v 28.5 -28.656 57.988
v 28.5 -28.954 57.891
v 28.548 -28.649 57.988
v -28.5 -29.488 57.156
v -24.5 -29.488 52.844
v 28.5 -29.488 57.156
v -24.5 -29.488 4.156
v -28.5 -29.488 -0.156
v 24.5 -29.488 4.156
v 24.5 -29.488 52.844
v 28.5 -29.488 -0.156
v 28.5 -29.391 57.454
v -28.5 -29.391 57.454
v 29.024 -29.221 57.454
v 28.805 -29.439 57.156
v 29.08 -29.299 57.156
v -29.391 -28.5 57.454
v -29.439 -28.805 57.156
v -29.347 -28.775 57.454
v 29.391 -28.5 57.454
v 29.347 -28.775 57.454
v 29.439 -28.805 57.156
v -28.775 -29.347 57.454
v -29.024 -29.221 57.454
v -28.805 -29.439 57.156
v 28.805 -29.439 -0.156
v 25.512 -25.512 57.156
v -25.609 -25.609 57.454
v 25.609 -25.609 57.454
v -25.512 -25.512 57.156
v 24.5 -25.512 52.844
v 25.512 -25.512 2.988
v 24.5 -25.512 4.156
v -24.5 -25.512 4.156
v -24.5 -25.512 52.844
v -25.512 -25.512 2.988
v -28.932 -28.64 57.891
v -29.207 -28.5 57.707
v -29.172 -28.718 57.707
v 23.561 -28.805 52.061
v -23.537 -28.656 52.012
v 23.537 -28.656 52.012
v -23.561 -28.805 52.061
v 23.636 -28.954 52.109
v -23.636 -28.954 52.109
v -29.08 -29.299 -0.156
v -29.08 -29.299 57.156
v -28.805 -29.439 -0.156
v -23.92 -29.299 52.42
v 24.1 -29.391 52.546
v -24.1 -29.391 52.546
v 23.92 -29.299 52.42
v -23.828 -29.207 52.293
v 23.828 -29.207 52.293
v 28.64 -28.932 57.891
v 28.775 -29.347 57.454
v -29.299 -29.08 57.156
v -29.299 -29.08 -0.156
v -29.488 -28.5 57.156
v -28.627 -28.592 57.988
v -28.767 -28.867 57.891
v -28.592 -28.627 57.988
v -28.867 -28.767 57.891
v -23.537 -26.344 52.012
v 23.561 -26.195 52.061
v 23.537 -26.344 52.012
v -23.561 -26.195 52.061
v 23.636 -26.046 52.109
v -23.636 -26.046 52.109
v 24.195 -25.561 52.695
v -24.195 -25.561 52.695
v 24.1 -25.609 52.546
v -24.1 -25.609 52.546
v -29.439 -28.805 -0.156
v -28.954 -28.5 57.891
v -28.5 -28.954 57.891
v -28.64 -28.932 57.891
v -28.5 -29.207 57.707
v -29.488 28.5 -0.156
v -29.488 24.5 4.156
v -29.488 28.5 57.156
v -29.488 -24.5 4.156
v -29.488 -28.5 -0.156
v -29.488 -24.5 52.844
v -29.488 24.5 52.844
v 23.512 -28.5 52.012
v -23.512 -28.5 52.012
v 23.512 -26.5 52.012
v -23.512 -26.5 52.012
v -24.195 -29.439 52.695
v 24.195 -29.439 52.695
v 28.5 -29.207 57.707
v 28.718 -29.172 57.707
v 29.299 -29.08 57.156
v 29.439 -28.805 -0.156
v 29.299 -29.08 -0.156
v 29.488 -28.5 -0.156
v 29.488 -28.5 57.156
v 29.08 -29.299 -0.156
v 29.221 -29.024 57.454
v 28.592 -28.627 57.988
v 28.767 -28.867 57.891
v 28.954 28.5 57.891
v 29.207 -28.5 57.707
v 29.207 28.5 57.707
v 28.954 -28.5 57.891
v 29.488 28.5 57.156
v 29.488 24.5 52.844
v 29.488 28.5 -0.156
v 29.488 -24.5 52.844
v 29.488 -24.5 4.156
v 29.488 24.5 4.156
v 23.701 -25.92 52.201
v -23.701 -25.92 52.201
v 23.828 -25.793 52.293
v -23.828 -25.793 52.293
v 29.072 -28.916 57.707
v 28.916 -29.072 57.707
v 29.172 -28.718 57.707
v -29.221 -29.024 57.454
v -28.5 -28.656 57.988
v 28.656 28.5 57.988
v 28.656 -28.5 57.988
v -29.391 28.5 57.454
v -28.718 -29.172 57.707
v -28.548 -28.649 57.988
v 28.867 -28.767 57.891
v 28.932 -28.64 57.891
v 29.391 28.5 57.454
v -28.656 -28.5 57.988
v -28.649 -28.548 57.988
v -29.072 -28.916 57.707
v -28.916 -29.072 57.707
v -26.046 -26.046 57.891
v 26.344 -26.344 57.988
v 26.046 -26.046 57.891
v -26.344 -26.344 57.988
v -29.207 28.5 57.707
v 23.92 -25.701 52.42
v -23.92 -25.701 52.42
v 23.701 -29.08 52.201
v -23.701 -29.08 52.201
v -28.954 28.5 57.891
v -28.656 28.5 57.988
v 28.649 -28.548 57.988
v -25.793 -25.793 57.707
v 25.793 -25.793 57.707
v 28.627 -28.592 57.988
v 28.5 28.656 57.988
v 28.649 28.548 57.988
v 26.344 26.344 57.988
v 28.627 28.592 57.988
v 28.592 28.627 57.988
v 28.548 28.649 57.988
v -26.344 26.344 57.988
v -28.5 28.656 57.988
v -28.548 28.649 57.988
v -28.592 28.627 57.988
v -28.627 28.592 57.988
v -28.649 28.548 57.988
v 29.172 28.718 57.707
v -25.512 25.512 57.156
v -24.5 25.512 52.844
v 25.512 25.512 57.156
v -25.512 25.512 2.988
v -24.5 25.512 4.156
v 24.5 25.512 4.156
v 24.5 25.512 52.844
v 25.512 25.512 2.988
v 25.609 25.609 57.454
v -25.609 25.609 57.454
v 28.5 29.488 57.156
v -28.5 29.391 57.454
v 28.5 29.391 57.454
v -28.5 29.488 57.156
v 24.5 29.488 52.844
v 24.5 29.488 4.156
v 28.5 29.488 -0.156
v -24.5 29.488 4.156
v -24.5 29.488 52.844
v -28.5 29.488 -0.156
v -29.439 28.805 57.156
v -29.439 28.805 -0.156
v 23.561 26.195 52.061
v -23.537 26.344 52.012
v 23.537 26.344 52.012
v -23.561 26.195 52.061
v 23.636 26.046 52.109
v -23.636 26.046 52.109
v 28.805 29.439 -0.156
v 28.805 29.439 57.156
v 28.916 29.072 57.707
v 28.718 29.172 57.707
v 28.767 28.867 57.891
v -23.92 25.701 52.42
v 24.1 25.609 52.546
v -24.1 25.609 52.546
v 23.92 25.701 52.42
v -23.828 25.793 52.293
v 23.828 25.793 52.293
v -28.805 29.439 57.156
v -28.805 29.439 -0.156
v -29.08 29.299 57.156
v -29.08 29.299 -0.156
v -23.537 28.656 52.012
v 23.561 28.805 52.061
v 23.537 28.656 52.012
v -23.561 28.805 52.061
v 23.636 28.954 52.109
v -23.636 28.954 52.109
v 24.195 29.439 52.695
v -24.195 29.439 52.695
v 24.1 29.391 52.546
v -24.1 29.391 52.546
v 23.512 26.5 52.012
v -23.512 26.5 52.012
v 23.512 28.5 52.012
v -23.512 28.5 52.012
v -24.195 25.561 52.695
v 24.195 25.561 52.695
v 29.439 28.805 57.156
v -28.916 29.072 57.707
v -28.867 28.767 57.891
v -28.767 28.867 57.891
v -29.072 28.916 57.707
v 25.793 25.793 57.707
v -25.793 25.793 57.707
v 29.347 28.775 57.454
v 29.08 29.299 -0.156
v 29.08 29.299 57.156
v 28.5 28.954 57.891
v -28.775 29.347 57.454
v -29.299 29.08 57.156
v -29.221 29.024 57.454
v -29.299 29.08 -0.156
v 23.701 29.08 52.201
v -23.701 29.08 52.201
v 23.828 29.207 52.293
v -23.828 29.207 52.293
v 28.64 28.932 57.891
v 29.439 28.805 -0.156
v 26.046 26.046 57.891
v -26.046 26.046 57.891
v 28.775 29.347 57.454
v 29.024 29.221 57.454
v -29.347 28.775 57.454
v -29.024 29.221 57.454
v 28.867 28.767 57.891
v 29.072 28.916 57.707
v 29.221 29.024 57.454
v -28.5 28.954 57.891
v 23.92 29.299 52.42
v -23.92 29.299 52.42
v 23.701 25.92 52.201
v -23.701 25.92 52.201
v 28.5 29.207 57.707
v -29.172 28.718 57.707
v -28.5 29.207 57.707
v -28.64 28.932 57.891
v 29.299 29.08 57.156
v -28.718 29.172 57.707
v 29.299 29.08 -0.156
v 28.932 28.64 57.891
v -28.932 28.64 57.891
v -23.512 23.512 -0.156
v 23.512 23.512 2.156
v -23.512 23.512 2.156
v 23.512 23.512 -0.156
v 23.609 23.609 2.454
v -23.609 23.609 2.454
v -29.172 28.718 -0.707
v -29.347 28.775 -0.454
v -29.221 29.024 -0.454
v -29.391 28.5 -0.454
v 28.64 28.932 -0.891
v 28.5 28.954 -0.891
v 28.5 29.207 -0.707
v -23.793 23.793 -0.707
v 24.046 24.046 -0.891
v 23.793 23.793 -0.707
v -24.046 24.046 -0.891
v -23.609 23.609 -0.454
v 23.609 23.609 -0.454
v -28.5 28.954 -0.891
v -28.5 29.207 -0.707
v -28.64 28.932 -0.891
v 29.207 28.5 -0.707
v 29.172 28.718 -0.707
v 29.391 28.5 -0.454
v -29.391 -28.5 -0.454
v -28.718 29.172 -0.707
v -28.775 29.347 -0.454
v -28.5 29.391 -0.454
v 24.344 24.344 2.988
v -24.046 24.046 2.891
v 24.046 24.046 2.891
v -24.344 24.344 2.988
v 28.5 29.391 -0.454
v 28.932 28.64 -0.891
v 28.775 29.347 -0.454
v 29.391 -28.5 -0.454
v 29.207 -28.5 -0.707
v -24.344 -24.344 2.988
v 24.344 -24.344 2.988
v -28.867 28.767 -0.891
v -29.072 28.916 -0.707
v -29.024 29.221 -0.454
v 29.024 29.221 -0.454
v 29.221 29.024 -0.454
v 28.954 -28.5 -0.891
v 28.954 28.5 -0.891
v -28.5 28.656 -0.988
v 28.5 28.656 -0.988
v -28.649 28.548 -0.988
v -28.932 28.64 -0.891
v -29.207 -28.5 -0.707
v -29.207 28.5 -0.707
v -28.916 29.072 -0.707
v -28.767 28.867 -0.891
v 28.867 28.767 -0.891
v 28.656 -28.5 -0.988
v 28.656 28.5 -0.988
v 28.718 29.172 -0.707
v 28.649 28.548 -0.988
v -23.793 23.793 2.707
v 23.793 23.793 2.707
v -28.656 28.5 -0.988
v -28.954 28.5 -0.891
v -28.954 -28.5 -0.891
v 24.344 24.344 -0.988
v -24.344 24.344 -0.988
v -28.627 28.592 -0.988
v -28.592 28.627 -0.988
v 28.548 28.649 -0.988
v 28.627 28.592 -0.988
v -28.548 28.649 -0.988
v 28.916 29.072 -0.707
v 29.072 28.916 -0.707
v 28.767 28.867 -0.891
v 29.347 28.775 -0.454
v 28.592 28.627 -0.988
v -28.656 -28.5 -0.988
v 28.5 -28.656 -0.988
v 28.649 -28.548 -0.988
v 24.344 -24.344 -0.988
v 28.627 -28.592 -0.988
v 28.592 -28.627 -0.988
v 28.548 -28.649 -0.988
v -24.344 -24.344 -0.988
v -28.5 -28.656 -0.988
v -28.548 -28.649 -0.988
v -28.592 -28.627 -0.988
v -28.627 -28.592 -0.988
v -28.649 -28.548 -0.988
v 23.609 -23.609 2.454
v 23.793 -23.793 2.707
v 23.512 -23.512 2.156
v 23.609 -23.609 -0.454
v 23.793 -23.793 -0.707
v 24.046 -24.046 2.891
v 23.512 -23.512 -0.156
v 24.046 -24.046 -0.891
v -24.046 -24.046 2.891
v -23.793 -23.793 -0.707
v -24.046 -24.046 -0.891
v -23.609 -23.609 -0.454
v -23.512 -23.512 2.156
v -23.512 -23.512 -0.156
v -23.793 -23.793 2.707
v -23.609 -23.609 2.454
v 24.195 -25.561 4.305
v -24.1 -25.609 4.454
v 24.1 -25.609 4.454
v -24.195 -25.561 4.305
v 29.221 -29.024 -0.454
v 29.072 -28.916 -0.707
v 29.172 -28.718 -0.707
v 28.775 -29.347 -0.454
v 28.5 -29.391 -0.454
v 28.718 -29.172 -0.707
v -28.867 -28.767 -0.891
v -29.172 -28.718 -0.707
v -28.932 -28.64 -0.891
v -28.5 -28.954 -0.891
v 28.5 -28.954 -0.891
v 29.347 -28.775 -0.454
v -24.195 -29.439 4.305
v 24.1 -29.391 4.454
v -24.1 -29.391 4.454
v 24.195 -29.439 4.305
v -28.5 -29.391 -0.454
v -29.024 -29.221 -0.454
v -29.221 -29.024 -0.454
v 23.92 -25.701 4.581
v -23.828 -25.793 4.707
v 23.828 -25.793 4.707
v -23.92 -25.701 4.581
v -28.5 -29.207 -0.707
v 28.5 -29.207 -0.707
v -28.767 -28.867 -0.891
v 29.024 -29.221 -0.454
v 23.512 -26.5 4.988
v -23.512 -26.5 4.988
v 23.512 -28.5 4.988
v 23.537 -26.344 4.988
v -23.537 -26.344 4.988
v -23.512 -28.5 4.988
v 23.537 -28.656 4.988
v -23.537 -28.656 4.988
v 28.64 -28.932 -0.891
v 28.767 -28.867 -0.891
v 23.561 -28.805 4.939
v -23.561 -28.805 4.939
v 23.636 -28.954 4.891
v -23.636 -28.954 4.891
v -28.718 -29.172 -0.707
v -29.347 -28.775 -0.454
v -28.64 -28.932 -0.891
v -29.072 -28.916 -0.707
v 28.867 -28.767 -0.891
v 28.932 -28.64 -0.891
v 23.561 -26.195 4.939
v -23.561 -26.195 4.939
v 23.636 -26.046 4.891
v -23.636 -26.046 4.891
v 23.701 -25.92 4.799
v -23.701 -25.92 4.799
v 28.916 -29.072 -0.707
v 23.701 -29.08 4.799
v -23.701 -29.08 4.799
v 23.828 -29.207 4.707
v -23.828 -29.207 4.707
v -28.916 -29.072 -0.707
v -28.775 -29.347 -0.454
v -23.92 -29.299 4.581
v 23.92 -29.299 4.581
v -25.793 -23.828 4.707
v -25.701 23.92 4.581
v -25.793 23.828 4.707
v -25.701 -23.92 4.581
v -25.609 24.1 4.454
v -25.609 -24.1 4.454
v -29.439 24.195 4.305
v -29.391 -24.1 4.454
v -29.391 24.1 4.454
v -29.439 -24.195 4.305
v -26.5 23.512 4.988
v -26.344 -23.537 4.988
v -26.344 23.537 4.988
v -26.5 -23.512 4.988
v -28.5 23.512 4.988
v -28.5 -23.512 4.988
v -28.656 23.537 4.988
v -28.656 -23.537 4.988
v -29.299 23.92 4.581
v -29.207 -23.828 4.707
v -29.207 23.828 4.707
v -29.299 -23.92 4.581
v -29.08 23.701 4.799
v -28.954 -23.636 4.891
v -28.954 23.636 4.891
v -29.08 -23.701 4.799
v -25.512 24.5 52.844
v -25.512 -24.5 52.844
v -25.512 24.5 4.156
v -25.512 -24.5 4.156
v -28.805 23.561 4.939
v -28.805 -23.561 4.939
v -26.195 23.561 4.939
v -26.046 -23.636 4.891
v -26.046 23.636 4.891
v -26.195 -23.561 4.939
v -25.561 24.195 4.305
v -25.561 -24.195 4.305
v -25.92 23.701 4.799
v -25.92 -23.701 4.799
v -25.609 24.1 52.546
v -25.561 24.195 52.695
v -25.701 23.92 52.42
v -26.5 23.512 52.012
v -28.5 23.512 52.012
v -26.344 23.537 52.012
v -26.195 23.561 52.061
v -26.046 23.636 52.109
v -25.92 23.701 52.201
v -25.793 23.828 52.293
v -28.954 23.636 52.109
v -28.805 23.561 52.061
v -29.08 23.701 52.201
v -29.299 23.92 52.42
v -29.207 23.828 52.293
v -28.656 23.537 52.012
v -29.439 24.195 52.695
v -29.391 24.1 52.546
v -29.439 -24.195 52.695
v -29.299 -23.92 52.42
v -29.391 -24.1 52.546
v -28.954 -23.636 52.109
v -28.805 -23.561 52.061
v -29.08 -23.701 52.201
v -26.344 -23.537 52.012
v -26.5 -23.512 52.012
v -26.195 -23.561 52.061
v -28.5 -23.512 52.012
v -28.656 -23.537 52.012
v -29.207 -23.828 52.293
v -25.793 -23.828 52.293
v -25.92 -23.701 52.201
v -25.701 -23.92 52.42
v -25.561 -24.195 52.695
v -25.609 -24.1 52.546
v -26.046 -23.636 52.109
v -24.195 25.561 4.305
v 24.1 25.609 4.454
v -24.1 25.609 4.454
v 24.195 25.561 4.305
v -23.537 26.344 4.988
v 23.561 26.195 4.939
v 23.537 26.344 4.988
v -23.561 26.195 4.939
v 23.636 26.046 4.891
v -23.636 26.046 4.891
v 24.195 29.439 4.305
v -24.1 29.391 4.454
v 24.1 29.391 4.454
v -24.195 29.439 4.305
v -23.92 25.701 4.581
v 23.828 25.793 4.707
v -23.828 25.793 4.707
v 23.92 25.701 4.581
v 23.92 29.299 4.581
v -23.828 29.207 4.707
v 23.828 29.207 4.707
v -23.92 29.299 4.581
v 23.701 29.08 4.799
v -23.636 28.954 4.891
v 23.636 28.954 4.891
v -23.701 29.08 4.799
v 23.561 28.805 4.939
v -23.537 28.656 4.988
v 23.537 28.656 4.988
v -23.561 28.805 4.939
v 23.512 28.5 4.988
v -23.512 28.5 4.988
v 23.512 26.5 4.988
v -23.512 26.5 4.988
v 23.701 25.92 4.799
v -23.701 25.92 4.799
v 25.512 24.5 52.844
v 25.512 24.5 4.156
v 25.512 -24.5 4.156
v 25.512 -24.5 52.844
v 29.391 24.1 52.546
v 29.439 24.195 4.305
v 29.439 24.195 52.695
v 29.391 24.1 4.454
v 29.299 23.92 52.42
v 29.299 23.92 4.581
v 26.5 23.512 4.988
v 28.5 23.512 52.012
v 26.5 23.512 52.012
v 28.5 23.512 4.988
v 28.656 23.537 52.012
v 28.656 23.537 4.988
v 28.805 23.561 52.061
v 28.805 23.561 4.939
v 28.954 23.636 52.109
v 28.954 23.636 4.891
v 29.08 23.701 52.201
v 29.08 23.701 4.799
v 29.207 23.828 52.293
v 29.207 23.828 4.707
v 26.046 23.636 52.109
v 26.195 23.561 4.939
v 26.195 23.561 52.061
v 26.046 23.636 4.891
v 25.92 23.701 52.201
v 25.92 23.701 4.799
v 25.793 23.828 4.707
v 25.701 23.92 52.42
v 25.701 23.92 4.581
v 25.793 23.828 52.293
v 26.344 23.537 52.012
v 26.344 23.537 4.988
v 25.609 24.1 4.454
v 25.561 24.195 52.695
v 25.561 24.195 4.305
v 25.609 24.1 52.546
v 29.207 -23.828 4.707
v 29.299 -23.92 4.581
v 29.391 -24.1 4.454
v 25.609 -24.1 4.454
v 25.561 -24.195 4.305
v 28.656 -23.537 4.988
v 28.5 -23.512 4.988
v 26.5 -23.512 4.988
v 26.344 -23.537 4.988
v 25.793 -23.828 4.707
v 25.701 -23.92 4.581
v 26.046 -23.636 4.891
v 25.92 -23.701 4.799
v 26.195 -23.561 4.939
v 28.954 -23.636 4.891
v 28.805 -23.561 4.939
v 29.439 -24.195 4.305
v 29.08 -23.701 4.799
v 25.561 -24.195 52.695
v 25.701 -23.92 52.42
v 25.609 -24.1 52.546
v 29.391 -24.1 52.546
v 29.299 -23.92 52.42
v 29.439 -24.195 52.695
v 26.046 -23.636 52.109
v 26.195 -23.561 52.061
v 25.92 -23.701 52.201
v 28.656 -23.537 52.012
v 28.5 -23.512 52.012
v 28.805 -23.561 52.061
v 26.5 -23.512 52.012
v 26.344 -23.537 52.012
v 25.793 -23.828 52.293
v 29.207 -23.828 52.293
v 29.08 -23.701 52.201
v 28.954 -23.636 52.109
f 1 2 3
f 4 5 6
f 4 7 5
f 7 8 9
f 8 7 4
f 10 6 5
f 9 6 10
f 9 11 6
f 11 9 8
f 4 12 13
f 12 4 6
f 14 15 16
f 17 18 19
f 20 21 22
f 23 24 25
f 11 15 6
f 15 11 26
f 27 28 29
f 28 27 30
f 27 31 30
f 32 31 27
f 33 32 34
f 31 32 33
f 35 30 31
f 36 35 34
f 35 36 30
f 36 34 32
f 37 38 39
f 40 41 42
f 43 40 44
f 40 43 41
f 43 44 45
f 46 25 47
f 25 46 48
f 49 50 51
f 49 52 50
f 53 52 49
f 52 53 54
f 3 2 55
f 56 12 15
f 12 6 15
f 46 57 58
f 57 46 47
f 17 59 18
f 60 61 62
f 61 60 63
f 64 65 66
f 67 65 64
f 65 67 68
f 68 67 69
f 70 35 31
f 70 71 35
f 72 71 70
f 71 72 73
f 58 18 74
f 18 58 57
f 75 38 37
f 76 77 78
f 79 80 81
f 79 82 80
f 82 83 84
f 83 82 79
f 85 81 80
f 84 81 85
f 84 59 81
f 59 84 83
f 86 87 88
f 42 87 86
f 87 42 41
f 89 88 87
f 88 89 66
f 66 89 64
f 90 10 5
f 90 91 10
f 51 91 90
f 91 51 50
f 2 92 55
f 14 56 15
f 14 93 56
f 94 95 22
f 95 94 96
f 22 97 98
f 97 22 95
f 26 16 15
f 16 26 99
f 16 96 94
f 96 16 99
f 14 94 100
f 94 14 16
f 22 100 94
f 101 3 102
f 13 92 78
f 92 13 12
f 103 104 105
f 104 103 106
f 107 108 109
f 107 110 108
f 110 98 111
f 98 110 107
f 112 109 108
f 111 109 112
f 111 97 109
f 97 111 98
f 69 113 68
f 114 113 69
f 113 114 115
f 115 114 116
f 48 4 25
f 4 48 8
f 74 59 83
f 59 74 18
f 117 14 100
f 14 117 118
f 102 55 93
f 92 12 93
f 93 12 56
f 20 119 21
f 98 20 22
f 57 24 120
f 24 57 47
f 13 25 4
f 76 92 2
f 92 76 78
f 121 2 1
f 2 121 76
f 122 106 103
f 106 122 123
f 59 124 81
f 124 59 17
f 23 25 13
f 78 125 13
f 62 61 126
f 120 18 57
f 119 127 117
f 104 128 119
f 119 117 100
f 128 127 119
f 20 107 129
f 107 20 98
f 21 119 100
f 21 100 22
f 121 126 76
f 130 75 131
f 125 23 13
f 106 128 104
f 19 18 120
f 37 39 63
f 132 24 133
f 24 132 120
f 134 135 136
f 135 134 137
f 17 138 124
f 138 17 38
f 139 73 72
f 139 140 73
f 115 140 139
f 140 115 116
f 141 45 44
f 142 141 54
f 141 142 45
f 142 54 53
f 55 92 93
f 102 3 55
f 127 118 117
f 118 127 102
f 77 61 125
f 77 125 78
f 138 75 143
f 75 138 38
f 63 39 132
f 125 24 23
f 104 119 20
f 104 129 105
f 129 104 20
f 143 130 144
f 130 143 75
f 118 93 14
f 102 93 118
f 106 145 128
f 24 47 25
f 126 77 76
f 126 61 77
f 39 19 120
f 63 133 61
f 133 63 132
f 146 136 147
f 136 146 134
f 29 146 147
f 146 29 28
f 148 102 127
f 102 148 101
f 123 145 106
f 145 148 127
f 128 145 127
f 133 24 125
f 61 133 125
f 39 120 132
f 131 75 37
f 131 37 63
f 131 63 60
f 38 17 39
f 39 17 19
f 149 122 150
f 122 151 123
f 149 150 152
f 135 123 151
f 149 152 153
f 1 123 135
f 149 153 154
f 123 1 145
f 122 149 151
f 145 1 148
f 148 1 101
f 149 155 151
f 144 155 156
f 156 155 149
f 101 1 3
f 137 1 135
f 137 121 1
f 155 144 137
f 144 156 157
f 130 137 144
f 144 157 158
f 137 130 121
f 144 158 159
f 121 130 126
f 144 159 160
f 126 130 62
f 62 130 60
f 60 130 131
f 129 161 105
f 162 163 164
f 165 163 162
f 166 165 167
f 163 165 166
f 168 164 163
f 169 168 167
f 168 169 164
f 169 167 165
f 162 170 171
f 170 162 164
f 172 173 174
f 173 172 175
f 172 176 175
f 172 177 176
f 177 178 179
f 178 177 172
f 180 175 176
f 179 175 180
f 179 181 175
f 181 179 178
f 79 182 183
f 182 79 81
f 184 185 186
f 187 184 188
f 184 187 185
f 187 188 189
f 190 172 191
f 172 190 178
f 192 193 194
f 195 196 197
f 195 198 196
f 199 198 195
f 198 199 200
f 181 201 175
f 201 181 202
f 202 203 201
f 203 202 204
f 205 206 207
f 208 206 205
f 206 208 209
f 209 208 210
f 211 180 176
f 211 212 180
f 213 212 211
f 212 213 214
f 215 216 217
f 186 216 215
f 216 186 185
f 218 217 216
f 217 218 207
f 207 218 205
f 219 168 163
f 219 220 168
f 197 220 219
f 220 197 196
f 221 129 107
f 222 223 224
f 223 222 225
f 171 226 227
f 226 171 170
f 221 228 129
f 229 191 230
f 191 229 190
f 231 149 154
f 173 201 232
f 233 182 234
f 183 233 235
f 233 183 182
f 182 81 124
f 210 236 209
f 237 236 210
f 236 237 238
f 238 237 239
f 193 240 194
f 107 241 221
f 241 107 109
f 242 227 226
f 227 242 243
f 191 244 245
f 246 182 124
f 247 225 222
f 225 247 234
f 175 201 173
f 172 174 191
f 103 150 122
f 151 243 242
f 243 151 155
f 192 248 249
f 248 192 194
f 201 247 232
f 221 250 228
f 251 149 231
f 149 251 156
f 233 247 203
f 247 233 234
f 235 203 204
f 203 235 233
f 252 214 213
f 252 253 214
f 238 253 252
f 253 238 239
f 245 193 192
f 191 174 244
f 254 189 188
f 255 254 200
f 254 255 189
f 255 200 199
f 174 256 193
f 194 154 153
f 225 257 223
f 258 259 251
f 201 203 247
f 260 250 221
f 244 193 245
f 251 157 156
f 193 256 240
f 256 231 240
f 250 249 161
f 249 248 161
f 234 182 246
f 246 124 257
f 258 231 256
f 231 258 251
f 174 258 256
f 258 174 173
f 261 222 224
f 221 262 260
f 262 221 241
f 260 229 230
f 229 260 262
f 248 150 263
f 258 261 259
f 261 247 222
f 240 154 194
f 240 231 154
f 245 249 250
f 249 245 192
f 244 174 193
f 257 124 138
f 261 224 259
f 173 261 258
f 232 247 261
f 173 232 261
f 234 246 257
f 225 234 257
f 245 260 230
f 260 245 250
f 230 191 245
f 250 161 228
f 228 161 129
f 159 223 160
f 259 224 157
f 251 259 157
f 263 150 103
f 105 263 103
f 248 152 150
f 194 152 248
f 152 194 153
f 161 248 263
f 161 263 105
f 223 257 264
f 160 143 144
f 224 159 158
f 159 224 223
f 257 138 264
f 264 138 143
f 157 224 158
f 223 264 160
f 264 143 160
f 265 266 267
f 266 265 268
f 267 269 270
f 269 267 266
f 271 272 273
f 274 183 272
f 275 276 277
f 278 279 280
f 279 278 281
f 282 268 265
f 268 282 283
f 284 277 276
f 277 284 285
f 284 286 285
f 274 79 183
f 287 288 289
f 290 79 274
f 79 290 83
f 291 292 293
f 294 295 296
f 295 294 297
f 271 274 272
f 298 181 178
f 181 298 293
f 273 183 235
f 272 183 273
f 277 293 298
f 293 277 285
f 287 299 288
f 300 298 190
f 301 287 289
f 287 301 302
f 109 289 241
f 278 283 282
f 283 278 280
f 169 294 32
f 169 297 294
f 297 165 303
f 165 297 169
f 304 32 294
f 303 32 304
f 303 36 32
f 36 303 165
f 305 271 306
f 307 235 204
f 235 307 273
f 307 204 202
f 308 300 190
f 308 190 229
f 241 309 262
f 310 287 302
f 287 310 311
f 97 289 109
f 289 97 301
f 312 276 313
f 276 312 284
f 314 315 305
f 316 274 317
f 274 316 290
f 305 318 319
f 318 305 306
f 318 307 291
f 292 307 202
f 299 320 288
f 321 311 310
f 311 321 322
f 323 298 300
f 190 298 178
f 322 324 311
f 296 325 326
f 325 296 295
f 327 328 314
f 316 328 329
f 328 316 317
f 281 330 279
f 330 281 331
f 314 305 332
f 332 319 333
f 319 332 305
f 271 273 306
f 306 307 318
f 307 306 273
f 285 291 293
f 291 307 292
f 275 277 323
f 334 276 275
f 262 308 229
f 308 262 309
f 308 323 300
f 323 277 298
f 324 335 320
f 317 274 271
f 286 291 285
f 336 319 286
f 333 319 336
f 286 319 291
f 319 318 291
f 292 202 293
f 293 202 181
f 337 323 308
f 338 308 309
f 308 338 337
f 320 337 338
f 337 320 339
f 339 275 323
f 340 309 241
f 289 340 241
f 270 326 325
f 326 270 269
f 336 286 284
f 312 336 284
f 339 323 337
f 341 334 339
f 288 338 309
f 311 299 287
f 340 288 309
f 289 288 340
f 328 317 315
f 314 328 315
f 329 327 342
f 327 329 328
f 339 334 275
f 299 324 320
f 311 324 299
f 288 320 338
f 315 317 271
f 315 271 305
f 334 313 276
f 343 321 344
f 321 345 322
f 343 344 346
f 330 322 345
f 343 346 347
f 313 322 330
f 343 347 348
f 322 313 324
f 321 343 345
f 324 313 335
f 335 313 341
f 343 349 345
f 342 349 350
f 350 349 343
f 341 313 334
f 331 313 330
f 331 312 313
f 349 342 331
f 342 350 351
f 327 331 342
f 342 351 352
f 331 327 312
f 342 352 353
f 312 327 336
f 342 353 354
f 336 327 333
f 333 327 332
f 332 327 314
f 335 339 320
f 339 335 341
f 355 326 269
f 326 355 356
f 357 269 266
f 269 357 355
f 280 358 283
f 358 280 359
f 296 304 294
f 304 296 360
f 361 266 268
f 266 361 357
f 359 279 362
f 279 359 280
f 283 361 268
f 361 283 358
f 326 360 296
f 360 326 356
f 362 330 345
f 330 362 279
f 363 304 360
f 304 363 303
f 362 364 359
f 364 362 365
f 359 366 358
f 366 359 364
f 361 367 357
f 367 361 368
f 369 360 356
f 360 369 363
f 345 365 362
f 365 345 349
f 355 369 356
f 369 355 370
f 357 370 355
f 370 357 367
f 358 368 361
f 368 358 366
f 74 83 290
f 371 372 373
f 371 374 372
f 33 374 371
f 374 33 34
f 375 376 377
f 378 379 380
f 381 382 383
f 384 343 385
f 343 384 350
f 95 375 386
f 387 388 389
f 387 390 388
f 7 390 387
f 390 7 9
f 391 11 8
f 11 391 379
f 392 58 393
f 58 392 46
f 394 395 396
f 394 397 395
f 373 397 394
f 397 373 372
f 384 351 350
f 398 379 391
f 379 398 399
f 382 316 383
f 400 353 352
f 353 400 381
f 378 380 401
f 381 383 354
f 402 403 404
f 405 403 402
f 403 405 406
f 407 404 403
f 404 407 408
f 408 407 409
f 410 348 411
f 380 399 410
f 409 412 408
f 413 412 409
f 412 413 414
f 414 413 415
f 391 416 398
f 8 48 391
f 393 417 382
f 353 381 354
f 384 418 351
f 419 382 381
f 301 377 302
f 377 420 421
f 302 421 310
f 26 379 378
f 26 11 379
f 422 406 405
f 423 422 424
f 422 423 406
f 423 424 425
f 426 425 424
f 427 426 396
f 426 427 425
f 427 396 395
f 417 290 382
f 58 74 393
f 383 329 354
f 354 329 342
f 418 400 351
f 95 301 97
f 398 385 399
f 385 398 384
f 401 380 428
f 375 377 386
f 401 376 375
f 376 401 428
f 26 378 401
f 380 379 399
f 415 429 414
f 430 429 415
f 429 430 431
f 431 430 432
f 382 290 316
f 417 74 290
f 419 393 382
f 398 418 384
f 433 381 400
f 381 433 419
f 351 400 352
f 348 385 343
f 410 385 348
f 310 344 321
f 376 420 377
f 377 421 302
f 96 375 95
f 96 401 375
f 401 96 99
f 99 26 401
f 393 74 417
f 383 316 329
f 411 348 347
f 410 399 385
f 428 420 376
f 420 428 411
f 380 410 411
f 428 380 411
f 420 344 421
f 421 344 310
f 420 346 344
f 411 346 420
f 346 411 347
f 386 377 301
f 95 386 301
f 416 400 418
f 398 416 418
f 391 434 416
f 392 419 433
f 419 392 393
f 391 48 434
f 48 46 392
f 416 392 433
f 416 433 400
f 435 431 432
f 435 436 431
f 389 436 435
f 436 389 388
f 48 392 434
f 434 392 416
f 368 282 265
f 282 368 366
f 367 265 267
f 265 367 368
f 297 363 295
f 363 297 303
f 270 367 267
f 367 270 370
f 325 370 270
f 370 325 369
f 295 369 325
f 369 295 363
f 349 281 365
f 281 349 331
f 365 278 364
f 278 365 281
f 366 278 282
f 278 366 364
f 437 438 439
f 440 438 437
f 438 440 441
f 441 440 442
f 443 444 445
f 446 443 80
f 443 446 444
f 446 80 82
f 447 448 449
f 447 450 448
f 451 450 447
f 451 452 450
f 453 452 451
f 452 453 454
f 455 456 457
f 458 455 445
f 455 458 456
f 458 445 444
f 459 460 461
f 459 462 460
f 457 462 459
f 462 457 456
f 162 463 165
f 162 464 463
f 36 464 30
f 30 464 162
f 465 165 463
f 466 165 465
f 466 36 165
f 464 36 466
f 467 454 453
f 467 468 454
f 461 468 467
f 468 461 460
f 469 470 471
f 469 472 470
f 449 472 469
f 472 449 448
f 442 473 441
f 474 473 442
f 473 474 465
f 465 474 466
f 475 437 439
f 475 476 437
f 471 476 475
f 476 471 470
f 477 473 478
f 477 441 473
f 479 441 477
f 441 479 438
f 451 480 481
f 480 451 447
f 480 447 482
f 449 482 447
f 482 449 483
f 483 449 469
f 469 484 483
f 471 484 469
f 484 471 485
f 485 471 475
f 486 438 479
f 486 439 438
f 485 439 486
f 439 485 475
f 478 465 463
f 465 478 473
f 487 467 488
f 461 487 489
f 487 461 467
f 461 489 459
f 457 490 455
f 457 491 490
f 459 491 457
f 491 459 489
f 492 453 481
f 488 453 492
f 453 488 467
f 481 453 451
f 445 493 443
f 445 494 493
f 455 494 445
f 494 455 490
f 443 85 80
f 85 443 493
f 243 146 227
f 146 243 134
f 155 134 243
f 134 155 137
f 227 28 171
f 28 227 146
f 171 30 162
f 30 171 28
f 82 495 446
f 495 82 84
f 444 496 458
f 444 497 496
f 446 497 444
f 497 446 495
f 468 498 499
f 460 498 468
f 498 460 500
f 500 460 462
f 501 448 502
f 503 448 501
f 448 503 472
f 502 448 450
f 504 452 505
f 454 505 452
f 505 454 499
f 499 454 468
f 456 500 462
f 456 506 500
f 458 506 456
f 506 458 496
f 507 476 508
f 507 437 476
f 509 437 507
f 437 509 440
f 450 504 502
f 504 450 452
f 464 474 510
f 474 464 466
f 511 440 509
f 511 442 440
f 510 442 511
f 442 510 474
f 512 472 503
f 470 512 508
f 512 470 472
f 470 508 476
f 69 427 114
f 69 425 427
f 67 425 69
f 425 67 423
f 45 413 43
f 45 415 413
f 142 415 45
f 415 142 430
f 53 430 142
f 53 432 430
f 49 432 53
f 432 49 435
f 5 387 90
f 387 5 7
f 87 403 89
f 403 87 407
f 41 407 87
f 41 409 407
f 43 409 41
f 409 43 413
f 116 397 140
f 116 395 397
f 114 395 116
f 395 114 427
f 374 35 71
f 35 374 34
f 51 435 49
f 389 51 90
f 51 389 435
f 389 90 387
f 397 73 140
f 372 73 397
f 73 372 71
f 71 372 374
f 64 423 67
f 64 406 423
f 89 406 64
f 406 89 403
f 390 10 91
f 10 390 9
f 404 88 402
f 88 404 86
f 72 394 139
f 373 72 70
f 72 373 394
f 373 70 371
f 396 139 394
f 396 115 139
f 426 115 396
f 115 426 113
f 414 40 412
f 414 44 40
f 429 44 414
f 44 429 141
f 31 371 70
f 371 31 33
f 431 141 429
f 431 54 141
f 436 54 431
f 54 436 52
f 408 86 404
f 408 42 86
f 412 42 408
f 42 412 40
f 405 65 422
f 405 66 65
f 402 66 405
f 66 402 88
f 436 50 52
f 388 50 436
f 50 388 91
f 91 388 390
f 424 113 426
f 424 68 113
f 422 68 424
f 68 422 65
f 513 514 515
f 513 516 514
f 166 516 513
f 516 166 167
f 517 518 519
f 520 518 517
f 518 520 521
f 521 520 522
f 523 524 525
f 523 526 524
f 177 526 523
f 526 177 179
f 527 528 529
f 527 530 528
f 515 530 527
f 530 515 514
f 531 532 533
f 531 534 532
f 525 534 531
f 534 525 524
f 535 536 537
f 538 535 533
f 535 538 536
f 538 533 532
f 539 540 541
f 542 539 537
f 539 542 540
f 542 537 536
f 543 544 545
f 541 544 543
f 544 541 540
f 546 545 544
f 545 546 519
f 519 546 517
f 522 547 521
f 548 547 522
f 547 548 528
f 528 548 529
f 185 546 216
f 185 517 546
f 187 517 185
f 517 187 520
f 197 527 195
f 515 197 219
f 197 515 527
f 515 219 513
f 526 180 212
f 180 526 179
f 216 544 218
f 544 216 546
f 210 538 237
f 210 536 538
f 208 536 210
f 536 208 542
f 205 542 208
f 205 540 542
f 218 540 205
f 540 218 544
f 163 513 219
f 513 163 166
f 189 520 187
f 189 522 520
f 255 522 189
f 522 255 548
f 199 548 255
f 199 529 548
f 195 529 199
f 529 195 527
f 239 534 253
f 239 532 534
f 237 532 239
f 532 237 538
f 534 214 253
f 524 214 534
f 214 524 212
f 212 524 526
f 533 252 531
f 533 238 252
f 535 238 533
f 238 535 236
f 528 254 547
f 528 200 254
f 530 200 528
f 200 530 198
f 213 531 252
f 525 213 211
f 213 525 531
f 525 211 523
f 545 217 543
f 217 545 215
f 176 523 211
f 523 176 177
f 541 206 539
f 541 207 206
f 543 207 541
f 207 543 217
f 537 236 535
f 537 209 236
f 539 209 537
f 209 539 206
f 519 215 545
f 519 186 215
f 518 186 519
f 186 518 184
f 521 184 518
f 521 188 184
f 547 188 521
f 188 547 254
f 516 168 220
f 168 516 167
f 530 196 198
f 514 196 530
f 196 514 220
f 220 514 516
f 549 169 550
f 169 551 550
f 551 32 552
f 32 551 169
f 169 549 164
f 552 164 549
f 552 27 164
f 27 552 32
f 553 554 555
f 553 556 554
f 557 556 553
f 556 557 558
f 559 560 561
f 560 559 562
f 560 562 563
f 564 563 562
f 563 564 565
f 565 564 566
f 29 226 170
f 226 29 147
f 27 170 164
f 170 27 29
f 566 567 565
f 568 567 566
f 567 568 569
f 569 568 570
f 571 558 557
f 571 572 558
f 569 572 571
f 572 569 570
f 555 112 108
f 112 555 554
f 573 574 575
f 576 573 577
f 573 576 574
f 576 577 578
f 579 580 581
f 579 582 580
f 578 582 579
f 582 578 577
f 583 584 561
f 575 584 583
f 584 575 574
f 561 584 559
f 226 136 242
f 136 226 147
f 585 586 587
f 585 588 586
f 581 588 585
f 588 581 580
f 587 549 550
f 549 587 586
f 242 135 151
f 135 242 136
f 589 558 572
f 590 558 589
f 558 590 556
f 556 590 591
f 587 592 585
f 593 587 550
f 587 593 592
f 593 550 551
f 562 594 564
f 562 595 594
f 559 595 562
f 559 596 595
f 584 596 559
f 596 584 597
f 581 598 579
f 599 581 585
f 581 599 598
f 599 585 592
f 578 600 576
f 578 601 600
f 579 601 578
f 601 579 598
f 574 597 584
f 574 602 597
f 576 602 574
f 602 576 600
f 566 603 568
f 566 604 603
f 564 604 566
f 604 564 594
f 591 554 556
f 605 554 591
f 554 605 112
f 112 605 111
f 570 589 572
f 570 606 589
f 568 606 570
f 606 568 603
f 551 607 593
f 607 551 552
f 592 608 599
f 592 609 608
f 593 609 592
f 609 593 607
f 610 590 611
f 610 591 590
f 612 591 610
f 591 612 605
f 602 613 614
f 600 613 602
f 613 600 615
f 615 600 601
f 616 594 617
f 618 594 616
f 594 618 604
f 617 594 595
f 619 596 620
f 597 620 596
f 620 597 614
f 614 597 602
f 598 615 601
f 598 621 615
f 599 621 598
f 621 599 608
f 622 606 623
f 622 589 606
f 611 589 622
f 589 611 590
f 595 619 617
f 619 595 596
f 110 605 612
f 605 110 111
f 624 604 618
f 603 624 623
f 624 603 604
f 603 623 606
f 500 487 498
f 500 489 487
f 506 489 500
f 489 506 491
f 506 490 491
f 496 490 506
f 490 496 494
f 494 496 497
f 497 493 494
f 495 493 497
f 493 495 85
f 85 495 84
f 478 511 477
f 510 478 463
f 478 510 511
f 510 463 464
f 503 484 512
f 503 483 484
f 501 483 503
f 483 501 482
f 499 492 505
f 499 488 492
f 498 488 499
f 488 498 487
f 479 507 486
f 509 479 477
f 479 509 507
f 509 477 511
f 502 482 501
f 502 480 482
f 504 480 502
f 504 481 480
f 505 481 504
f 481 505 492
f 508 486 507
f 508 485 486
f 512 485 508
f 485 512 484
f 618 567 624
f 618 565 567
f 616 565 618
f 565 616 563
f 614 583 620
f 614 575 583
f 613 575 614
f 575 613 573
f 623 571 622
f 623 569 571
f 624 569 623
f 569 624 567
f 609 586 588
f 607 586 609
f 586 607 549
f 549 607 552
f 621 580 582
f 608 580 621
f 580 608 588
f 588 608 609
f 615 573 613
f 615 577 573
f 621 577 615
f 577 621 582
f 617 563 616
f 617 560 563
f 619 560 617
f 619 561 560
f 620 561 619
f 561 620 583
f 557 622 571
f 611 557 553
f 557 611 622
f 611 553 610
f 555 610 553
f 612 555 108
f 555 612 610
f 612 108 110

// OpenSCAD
// file: logo.scad
module logo() {
	translate([-7, 68, 0]) logoText();
	logoShapes();
}

module logoText() {
	linear_extrude(height = 10) {
		minkowski() {
			text("DIDACTIVE", size=71.7, font="Century Gothic");
			circle(1);
		}
	}
}

module logoShapes() {
	step = 63;
	linear_extrude(height = 10) {
		translate([0*step, 0]) logoSquare();
		translate([1*step, 0]) logoCircle();
		translate([2*step, 0]) logoTriangle();
		translate([3*step, 0]) logoCircle();
		translate([4*step, 0]) logoSquare();
		translate([5*step, 0]) logoCircle();
		translate([6*step, 0]) logoTriangle();
		translate([7*step, 0]) logoCircle();
	}
}

module logoSquare() {
	difference() {
		square(52);
		translate([12, 12]) square(28);
	}
}

module logoCircle() {
	difference() {
		square(52);
		translate([26, 26]) circle(d=35);
	}
}

module logoTriangle() {
	a = 20;
	points = [[0, a], [-cos(30)*a, -sin(30)*a], [cos(30)*a, -sin(30)*a]];
	difference() {
		square(52);
		translate([26, 22]) polygon(points);
	}
}
// main file
$fn = 20;
include<logo.scad>

a = 50; // strana krychle v mm
rawEdgeThickness = 6; // průměr hran
indent = 2; // zářez do hran
extraSpace = 0.5; // rezerva
roundness = 1; // zaoblení

edgeThickness = rawEdgeThickness - 2*roundness;
netSize = a + 2 * (extraSpace - indent + rawEdgeThickness - roundness);

module roundedCuboid(size = [1, 1, 1], r = 1) {
	hull() {
		translate([r, r, r]) sphere(r);
		translate([r, size[1] - r, r]) sphere(r);
		translate([r, r, size[2] - r]) sphere(r);
		translate([r, size[1] - r, size[2] - r]) sphere(r);

		translate([size[0] - r, r, r]) sphere(r);
		translate([size[0] - r, size[1] - r, r]) sphere(r);
		translate([size[0] - r, r, size[2] - r]) sphere(r);
		translate([size[0] - r, size[1] - r, size[2] - r]) sphere(r);
	}
}

/*
module baseSquare() {
	translate([-a/2, -a/2, 0]) roundedCuboid([a, edgeThickness, edgeThickness], roundness);
	translate([-a/2, a/2 - edgeThickness, 0]) roundedCuboid([a, edgeThickness, edgeThickness], roundness);
	translate([-a/2, -a/2, 0]) roundedCuboid([edgeThickness, a, edgeThickness], roundness);
	translate([a/2 - edgeThickness, -a/2, 0]) roundedCuboid([edgeThickness, a, edgeThickness], roundness);
}

module verticalEdges() {
	translate([-a/2, -a/2, 0]) roundedCuboid([edgeThickness, edgeThickness, a], roundness);
	translate([-a/2, a/2 - edgeThickness, 0]) roundedCuboid([edgeThickness, edgeThickness, a], roundness);
	translate([a/2 - edgeThickness, -a/2, 0]) roundedCuboid([edgeThickness, edgeThickness, a], roundness);
	translate([a/2 - edgeThickness, a/2 - edgeThickness, 0]) roundedCuboid([edgeThickness, edgeThickness, a], roundness);
}
*/

module baseSquare() {
	translate([-netSize/2, -netSize/2, 0]) cube([netSize, edgeThickness, edgeThickness]);
	translate([-netSize/2, netSize/2 - edgeThickness, 0]) cube([netSize, edgeThickness, edgeThickness]);
	translate([-netSize/2, -netSize/2, 0]) cube([edgeThickness, netSize, edgeThickness]);
	translate([netSize/2 - edgeThickness, -netSize/2, 0]) cube([edgeThickness, netSize, edgeThickness]);
}

module verticalEdges() {
	translate([-netSize/2, -netSize/2, 0]) cube([edgeThickness, edgeThickness, netSize]);
	translate([-netSize/2, netSize/2 - edgeThickness, 0]) cube([edgeThickness, edgeThickness, netSize]);
	translate([netSize/2 - edgeThickness, -netSize/2, 0]) cube([edgeThickness, edgeThickness, netSize]);
	translate([netSize/2 - edgeThickness, netSize/2 - edgeThickness, 0]) cube([edgeThickness, edgeThickness, netSize]);
}

minkowski() {
	difference() {
		union() {
			baseSquare();
			verticalEdges();
			translate([0, 0, netSize - edgeThickness]) baseSquare();
		}
		translate([0, 0, a/2 + 2*edgeThickness - indent]) 
		cube([a + 2*extraSpace + 2*roundness, a + 2*extraSpace + 2*roundness, a + 2*edgeThickness], center=true);
	}
	sphere(roundness);
}
